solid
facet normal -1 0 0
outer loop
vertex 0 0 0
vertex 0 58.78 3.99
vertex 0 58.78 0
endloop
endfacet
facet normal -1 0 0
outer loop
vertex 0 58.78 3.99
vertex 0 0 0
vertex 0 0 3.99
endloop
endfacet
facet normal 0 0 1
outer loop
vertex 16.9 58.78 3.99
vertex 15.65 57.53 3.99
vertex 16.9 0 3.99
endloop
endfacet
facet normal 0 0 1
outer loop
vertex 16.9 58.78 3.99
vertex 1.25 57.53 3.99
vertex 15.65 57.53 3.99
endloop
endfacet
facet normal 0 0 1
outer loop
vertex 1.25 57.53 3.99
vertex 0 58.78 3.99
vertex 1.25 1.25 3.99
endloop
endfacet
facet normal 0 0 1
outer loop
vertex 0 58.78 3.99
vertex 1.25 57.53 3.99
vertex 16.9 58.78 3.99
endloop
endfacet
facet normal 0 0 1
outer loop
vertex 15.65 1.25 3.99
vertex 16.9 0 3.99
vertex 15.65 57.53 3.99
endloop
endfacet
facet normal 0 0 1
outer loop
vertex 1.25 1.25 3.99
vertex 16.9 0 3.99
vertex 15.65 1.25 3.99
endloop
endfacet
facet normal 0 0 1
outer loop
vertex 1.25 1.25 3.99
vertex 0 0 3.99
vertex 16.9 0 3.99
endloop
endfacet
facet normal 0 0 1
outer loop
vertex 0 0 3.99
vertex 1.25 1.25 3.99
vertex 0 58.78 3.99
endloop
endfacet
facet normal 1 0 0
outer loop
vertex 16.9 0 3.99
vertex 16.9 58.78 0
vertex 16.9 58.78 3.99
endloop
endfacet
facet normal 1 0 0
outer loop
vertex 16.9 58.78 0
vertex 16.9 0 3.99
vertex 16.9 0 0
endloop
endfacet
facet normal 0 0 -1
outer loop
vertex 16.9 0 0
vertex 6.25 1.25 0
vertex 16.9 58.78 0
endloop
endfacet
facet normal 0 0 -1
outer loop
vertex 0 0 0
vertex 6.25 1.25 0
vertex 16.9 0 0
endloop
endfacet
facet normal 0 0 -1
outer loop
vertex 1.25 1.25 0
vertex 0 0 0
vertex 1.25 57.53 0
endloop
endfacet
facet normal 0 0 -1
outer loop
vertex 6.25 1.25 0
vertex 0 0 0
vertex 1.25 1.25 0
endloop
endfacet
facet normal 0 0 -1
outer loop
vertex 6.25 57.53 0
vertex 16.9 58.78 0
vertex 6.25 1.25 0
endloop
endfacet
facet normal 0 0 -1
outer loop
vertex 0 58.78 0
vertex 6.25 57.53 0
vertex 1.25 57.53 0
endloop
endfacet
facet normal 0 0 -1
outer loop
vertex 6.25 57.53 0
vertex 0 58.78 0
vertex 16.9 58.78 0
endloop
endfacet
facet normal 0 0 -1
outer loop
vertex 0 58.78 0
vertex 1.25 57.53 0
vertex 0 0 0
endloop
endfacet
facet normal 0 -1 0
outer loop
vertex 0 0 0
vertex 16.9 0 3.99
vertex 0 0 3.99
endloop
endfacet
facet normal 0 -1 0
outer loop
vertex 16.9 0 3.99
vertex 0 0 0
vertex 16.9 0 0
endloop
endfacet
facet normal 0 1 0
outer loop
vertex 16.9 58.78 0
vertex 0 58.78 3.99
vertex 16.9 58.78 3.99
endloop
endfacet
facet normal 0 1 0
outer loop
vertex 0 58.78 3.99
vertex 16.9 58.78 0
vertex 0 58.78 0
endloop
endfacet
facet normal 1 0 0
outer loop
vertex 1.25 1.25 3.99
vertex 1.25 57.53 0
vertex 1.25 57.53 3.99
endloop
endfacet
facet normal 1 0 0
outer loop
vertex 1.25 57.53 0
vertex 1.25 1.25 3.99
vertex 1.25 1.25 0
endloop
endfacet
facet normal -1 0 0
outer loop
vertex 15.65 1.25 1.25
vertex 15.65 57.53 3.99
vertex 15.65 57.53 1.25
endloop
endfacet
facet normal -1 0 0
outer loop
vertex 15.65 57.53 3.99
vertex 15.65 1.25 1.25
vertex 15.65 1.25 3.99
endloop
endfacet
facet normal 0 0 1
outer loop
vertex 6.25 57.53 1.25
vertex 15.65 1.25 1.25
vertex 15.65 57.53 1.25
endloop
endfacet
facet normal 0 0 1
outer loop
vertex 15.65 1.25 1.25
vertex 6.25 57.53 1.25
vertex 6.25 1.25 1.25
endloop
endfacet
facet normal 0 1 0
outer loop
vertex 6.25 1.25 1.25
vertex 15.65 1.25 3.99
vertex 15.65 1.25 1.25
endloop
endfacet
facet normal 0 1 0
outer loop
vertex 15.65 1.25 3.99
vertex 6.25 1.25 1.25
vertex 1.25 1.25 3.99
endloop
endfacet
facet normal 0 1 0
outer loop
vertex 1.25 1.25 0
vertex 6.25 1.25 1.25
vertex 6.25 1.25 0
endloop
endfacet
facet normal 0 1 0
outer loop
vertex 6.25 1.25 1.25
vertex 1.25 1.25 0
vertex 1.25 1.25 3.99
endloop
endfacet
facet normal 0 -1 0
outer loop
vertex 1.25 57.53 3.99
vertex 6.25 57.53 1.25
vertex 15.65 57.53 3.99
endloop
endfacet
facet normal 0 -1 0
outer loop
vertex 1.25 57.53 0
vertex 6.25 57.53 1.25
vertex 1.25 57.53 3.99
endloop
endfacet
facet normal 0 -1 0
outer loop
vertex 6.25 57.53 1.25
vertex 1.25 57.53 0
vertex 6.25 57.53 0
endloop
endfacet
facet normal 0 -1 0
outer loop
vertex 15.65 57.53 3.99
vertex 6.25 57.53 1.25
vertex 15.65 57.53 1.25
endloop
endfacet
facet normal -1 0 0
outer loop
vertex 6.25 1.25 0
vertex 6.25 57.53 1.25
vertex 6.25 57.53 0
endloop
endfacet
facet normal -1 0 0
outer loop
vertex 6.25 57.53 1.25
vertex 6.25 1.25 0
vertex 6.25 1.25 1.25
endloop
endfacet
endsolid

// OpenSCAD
// Customize the invocations (which follow
// the modules declarations) at the bottom of the file.

// To get these to print the fine features created
// by the "text" command, I set "Outer wall" to
// 0.22mm.

minh = 1;	// Minimum height
inch = 25.4;
$fn=50;

// BUGBUG: Does width/length need fudge for clearance?
awidth = 0.66+.20;	// Aperture width
iwidth = 1.76-.02;	// Box inside width
owidth = 2.54;	// Box outside width
oheight = 14.00; // Box overall height
theight = 8.30;	// Retention tab height
bheight = 3.90; // Pin guide height
gheight = oheight - theight - bheight; // Height of gap
twidth = 1;
tlength = 3.9;
glength = 5;

rows = 2;
cols = 22;

width = 81;
length = 44.6;
//height = 2;
height = 3*inch;
oww = 2.5; // ww we must fit inside
ww = oww + 1; // Our wall width

// A simple box, the right size for a housing.abs
slack = 0.2;
hwidth = oheight + 2*slack;
hheight = owidth + slack;
hlength = owidth*cols + 2*slack;
difference() {
    cube([hwidth+oww, hlength+oww, hheight+oww/2]);
    translate([oww/2, oww/2, oww/2])
        cube([hwidth, hlength, hheight]);
    translate([oww/2, oww/2, 0])
        cube([5, hlength, oww/2]);
}
